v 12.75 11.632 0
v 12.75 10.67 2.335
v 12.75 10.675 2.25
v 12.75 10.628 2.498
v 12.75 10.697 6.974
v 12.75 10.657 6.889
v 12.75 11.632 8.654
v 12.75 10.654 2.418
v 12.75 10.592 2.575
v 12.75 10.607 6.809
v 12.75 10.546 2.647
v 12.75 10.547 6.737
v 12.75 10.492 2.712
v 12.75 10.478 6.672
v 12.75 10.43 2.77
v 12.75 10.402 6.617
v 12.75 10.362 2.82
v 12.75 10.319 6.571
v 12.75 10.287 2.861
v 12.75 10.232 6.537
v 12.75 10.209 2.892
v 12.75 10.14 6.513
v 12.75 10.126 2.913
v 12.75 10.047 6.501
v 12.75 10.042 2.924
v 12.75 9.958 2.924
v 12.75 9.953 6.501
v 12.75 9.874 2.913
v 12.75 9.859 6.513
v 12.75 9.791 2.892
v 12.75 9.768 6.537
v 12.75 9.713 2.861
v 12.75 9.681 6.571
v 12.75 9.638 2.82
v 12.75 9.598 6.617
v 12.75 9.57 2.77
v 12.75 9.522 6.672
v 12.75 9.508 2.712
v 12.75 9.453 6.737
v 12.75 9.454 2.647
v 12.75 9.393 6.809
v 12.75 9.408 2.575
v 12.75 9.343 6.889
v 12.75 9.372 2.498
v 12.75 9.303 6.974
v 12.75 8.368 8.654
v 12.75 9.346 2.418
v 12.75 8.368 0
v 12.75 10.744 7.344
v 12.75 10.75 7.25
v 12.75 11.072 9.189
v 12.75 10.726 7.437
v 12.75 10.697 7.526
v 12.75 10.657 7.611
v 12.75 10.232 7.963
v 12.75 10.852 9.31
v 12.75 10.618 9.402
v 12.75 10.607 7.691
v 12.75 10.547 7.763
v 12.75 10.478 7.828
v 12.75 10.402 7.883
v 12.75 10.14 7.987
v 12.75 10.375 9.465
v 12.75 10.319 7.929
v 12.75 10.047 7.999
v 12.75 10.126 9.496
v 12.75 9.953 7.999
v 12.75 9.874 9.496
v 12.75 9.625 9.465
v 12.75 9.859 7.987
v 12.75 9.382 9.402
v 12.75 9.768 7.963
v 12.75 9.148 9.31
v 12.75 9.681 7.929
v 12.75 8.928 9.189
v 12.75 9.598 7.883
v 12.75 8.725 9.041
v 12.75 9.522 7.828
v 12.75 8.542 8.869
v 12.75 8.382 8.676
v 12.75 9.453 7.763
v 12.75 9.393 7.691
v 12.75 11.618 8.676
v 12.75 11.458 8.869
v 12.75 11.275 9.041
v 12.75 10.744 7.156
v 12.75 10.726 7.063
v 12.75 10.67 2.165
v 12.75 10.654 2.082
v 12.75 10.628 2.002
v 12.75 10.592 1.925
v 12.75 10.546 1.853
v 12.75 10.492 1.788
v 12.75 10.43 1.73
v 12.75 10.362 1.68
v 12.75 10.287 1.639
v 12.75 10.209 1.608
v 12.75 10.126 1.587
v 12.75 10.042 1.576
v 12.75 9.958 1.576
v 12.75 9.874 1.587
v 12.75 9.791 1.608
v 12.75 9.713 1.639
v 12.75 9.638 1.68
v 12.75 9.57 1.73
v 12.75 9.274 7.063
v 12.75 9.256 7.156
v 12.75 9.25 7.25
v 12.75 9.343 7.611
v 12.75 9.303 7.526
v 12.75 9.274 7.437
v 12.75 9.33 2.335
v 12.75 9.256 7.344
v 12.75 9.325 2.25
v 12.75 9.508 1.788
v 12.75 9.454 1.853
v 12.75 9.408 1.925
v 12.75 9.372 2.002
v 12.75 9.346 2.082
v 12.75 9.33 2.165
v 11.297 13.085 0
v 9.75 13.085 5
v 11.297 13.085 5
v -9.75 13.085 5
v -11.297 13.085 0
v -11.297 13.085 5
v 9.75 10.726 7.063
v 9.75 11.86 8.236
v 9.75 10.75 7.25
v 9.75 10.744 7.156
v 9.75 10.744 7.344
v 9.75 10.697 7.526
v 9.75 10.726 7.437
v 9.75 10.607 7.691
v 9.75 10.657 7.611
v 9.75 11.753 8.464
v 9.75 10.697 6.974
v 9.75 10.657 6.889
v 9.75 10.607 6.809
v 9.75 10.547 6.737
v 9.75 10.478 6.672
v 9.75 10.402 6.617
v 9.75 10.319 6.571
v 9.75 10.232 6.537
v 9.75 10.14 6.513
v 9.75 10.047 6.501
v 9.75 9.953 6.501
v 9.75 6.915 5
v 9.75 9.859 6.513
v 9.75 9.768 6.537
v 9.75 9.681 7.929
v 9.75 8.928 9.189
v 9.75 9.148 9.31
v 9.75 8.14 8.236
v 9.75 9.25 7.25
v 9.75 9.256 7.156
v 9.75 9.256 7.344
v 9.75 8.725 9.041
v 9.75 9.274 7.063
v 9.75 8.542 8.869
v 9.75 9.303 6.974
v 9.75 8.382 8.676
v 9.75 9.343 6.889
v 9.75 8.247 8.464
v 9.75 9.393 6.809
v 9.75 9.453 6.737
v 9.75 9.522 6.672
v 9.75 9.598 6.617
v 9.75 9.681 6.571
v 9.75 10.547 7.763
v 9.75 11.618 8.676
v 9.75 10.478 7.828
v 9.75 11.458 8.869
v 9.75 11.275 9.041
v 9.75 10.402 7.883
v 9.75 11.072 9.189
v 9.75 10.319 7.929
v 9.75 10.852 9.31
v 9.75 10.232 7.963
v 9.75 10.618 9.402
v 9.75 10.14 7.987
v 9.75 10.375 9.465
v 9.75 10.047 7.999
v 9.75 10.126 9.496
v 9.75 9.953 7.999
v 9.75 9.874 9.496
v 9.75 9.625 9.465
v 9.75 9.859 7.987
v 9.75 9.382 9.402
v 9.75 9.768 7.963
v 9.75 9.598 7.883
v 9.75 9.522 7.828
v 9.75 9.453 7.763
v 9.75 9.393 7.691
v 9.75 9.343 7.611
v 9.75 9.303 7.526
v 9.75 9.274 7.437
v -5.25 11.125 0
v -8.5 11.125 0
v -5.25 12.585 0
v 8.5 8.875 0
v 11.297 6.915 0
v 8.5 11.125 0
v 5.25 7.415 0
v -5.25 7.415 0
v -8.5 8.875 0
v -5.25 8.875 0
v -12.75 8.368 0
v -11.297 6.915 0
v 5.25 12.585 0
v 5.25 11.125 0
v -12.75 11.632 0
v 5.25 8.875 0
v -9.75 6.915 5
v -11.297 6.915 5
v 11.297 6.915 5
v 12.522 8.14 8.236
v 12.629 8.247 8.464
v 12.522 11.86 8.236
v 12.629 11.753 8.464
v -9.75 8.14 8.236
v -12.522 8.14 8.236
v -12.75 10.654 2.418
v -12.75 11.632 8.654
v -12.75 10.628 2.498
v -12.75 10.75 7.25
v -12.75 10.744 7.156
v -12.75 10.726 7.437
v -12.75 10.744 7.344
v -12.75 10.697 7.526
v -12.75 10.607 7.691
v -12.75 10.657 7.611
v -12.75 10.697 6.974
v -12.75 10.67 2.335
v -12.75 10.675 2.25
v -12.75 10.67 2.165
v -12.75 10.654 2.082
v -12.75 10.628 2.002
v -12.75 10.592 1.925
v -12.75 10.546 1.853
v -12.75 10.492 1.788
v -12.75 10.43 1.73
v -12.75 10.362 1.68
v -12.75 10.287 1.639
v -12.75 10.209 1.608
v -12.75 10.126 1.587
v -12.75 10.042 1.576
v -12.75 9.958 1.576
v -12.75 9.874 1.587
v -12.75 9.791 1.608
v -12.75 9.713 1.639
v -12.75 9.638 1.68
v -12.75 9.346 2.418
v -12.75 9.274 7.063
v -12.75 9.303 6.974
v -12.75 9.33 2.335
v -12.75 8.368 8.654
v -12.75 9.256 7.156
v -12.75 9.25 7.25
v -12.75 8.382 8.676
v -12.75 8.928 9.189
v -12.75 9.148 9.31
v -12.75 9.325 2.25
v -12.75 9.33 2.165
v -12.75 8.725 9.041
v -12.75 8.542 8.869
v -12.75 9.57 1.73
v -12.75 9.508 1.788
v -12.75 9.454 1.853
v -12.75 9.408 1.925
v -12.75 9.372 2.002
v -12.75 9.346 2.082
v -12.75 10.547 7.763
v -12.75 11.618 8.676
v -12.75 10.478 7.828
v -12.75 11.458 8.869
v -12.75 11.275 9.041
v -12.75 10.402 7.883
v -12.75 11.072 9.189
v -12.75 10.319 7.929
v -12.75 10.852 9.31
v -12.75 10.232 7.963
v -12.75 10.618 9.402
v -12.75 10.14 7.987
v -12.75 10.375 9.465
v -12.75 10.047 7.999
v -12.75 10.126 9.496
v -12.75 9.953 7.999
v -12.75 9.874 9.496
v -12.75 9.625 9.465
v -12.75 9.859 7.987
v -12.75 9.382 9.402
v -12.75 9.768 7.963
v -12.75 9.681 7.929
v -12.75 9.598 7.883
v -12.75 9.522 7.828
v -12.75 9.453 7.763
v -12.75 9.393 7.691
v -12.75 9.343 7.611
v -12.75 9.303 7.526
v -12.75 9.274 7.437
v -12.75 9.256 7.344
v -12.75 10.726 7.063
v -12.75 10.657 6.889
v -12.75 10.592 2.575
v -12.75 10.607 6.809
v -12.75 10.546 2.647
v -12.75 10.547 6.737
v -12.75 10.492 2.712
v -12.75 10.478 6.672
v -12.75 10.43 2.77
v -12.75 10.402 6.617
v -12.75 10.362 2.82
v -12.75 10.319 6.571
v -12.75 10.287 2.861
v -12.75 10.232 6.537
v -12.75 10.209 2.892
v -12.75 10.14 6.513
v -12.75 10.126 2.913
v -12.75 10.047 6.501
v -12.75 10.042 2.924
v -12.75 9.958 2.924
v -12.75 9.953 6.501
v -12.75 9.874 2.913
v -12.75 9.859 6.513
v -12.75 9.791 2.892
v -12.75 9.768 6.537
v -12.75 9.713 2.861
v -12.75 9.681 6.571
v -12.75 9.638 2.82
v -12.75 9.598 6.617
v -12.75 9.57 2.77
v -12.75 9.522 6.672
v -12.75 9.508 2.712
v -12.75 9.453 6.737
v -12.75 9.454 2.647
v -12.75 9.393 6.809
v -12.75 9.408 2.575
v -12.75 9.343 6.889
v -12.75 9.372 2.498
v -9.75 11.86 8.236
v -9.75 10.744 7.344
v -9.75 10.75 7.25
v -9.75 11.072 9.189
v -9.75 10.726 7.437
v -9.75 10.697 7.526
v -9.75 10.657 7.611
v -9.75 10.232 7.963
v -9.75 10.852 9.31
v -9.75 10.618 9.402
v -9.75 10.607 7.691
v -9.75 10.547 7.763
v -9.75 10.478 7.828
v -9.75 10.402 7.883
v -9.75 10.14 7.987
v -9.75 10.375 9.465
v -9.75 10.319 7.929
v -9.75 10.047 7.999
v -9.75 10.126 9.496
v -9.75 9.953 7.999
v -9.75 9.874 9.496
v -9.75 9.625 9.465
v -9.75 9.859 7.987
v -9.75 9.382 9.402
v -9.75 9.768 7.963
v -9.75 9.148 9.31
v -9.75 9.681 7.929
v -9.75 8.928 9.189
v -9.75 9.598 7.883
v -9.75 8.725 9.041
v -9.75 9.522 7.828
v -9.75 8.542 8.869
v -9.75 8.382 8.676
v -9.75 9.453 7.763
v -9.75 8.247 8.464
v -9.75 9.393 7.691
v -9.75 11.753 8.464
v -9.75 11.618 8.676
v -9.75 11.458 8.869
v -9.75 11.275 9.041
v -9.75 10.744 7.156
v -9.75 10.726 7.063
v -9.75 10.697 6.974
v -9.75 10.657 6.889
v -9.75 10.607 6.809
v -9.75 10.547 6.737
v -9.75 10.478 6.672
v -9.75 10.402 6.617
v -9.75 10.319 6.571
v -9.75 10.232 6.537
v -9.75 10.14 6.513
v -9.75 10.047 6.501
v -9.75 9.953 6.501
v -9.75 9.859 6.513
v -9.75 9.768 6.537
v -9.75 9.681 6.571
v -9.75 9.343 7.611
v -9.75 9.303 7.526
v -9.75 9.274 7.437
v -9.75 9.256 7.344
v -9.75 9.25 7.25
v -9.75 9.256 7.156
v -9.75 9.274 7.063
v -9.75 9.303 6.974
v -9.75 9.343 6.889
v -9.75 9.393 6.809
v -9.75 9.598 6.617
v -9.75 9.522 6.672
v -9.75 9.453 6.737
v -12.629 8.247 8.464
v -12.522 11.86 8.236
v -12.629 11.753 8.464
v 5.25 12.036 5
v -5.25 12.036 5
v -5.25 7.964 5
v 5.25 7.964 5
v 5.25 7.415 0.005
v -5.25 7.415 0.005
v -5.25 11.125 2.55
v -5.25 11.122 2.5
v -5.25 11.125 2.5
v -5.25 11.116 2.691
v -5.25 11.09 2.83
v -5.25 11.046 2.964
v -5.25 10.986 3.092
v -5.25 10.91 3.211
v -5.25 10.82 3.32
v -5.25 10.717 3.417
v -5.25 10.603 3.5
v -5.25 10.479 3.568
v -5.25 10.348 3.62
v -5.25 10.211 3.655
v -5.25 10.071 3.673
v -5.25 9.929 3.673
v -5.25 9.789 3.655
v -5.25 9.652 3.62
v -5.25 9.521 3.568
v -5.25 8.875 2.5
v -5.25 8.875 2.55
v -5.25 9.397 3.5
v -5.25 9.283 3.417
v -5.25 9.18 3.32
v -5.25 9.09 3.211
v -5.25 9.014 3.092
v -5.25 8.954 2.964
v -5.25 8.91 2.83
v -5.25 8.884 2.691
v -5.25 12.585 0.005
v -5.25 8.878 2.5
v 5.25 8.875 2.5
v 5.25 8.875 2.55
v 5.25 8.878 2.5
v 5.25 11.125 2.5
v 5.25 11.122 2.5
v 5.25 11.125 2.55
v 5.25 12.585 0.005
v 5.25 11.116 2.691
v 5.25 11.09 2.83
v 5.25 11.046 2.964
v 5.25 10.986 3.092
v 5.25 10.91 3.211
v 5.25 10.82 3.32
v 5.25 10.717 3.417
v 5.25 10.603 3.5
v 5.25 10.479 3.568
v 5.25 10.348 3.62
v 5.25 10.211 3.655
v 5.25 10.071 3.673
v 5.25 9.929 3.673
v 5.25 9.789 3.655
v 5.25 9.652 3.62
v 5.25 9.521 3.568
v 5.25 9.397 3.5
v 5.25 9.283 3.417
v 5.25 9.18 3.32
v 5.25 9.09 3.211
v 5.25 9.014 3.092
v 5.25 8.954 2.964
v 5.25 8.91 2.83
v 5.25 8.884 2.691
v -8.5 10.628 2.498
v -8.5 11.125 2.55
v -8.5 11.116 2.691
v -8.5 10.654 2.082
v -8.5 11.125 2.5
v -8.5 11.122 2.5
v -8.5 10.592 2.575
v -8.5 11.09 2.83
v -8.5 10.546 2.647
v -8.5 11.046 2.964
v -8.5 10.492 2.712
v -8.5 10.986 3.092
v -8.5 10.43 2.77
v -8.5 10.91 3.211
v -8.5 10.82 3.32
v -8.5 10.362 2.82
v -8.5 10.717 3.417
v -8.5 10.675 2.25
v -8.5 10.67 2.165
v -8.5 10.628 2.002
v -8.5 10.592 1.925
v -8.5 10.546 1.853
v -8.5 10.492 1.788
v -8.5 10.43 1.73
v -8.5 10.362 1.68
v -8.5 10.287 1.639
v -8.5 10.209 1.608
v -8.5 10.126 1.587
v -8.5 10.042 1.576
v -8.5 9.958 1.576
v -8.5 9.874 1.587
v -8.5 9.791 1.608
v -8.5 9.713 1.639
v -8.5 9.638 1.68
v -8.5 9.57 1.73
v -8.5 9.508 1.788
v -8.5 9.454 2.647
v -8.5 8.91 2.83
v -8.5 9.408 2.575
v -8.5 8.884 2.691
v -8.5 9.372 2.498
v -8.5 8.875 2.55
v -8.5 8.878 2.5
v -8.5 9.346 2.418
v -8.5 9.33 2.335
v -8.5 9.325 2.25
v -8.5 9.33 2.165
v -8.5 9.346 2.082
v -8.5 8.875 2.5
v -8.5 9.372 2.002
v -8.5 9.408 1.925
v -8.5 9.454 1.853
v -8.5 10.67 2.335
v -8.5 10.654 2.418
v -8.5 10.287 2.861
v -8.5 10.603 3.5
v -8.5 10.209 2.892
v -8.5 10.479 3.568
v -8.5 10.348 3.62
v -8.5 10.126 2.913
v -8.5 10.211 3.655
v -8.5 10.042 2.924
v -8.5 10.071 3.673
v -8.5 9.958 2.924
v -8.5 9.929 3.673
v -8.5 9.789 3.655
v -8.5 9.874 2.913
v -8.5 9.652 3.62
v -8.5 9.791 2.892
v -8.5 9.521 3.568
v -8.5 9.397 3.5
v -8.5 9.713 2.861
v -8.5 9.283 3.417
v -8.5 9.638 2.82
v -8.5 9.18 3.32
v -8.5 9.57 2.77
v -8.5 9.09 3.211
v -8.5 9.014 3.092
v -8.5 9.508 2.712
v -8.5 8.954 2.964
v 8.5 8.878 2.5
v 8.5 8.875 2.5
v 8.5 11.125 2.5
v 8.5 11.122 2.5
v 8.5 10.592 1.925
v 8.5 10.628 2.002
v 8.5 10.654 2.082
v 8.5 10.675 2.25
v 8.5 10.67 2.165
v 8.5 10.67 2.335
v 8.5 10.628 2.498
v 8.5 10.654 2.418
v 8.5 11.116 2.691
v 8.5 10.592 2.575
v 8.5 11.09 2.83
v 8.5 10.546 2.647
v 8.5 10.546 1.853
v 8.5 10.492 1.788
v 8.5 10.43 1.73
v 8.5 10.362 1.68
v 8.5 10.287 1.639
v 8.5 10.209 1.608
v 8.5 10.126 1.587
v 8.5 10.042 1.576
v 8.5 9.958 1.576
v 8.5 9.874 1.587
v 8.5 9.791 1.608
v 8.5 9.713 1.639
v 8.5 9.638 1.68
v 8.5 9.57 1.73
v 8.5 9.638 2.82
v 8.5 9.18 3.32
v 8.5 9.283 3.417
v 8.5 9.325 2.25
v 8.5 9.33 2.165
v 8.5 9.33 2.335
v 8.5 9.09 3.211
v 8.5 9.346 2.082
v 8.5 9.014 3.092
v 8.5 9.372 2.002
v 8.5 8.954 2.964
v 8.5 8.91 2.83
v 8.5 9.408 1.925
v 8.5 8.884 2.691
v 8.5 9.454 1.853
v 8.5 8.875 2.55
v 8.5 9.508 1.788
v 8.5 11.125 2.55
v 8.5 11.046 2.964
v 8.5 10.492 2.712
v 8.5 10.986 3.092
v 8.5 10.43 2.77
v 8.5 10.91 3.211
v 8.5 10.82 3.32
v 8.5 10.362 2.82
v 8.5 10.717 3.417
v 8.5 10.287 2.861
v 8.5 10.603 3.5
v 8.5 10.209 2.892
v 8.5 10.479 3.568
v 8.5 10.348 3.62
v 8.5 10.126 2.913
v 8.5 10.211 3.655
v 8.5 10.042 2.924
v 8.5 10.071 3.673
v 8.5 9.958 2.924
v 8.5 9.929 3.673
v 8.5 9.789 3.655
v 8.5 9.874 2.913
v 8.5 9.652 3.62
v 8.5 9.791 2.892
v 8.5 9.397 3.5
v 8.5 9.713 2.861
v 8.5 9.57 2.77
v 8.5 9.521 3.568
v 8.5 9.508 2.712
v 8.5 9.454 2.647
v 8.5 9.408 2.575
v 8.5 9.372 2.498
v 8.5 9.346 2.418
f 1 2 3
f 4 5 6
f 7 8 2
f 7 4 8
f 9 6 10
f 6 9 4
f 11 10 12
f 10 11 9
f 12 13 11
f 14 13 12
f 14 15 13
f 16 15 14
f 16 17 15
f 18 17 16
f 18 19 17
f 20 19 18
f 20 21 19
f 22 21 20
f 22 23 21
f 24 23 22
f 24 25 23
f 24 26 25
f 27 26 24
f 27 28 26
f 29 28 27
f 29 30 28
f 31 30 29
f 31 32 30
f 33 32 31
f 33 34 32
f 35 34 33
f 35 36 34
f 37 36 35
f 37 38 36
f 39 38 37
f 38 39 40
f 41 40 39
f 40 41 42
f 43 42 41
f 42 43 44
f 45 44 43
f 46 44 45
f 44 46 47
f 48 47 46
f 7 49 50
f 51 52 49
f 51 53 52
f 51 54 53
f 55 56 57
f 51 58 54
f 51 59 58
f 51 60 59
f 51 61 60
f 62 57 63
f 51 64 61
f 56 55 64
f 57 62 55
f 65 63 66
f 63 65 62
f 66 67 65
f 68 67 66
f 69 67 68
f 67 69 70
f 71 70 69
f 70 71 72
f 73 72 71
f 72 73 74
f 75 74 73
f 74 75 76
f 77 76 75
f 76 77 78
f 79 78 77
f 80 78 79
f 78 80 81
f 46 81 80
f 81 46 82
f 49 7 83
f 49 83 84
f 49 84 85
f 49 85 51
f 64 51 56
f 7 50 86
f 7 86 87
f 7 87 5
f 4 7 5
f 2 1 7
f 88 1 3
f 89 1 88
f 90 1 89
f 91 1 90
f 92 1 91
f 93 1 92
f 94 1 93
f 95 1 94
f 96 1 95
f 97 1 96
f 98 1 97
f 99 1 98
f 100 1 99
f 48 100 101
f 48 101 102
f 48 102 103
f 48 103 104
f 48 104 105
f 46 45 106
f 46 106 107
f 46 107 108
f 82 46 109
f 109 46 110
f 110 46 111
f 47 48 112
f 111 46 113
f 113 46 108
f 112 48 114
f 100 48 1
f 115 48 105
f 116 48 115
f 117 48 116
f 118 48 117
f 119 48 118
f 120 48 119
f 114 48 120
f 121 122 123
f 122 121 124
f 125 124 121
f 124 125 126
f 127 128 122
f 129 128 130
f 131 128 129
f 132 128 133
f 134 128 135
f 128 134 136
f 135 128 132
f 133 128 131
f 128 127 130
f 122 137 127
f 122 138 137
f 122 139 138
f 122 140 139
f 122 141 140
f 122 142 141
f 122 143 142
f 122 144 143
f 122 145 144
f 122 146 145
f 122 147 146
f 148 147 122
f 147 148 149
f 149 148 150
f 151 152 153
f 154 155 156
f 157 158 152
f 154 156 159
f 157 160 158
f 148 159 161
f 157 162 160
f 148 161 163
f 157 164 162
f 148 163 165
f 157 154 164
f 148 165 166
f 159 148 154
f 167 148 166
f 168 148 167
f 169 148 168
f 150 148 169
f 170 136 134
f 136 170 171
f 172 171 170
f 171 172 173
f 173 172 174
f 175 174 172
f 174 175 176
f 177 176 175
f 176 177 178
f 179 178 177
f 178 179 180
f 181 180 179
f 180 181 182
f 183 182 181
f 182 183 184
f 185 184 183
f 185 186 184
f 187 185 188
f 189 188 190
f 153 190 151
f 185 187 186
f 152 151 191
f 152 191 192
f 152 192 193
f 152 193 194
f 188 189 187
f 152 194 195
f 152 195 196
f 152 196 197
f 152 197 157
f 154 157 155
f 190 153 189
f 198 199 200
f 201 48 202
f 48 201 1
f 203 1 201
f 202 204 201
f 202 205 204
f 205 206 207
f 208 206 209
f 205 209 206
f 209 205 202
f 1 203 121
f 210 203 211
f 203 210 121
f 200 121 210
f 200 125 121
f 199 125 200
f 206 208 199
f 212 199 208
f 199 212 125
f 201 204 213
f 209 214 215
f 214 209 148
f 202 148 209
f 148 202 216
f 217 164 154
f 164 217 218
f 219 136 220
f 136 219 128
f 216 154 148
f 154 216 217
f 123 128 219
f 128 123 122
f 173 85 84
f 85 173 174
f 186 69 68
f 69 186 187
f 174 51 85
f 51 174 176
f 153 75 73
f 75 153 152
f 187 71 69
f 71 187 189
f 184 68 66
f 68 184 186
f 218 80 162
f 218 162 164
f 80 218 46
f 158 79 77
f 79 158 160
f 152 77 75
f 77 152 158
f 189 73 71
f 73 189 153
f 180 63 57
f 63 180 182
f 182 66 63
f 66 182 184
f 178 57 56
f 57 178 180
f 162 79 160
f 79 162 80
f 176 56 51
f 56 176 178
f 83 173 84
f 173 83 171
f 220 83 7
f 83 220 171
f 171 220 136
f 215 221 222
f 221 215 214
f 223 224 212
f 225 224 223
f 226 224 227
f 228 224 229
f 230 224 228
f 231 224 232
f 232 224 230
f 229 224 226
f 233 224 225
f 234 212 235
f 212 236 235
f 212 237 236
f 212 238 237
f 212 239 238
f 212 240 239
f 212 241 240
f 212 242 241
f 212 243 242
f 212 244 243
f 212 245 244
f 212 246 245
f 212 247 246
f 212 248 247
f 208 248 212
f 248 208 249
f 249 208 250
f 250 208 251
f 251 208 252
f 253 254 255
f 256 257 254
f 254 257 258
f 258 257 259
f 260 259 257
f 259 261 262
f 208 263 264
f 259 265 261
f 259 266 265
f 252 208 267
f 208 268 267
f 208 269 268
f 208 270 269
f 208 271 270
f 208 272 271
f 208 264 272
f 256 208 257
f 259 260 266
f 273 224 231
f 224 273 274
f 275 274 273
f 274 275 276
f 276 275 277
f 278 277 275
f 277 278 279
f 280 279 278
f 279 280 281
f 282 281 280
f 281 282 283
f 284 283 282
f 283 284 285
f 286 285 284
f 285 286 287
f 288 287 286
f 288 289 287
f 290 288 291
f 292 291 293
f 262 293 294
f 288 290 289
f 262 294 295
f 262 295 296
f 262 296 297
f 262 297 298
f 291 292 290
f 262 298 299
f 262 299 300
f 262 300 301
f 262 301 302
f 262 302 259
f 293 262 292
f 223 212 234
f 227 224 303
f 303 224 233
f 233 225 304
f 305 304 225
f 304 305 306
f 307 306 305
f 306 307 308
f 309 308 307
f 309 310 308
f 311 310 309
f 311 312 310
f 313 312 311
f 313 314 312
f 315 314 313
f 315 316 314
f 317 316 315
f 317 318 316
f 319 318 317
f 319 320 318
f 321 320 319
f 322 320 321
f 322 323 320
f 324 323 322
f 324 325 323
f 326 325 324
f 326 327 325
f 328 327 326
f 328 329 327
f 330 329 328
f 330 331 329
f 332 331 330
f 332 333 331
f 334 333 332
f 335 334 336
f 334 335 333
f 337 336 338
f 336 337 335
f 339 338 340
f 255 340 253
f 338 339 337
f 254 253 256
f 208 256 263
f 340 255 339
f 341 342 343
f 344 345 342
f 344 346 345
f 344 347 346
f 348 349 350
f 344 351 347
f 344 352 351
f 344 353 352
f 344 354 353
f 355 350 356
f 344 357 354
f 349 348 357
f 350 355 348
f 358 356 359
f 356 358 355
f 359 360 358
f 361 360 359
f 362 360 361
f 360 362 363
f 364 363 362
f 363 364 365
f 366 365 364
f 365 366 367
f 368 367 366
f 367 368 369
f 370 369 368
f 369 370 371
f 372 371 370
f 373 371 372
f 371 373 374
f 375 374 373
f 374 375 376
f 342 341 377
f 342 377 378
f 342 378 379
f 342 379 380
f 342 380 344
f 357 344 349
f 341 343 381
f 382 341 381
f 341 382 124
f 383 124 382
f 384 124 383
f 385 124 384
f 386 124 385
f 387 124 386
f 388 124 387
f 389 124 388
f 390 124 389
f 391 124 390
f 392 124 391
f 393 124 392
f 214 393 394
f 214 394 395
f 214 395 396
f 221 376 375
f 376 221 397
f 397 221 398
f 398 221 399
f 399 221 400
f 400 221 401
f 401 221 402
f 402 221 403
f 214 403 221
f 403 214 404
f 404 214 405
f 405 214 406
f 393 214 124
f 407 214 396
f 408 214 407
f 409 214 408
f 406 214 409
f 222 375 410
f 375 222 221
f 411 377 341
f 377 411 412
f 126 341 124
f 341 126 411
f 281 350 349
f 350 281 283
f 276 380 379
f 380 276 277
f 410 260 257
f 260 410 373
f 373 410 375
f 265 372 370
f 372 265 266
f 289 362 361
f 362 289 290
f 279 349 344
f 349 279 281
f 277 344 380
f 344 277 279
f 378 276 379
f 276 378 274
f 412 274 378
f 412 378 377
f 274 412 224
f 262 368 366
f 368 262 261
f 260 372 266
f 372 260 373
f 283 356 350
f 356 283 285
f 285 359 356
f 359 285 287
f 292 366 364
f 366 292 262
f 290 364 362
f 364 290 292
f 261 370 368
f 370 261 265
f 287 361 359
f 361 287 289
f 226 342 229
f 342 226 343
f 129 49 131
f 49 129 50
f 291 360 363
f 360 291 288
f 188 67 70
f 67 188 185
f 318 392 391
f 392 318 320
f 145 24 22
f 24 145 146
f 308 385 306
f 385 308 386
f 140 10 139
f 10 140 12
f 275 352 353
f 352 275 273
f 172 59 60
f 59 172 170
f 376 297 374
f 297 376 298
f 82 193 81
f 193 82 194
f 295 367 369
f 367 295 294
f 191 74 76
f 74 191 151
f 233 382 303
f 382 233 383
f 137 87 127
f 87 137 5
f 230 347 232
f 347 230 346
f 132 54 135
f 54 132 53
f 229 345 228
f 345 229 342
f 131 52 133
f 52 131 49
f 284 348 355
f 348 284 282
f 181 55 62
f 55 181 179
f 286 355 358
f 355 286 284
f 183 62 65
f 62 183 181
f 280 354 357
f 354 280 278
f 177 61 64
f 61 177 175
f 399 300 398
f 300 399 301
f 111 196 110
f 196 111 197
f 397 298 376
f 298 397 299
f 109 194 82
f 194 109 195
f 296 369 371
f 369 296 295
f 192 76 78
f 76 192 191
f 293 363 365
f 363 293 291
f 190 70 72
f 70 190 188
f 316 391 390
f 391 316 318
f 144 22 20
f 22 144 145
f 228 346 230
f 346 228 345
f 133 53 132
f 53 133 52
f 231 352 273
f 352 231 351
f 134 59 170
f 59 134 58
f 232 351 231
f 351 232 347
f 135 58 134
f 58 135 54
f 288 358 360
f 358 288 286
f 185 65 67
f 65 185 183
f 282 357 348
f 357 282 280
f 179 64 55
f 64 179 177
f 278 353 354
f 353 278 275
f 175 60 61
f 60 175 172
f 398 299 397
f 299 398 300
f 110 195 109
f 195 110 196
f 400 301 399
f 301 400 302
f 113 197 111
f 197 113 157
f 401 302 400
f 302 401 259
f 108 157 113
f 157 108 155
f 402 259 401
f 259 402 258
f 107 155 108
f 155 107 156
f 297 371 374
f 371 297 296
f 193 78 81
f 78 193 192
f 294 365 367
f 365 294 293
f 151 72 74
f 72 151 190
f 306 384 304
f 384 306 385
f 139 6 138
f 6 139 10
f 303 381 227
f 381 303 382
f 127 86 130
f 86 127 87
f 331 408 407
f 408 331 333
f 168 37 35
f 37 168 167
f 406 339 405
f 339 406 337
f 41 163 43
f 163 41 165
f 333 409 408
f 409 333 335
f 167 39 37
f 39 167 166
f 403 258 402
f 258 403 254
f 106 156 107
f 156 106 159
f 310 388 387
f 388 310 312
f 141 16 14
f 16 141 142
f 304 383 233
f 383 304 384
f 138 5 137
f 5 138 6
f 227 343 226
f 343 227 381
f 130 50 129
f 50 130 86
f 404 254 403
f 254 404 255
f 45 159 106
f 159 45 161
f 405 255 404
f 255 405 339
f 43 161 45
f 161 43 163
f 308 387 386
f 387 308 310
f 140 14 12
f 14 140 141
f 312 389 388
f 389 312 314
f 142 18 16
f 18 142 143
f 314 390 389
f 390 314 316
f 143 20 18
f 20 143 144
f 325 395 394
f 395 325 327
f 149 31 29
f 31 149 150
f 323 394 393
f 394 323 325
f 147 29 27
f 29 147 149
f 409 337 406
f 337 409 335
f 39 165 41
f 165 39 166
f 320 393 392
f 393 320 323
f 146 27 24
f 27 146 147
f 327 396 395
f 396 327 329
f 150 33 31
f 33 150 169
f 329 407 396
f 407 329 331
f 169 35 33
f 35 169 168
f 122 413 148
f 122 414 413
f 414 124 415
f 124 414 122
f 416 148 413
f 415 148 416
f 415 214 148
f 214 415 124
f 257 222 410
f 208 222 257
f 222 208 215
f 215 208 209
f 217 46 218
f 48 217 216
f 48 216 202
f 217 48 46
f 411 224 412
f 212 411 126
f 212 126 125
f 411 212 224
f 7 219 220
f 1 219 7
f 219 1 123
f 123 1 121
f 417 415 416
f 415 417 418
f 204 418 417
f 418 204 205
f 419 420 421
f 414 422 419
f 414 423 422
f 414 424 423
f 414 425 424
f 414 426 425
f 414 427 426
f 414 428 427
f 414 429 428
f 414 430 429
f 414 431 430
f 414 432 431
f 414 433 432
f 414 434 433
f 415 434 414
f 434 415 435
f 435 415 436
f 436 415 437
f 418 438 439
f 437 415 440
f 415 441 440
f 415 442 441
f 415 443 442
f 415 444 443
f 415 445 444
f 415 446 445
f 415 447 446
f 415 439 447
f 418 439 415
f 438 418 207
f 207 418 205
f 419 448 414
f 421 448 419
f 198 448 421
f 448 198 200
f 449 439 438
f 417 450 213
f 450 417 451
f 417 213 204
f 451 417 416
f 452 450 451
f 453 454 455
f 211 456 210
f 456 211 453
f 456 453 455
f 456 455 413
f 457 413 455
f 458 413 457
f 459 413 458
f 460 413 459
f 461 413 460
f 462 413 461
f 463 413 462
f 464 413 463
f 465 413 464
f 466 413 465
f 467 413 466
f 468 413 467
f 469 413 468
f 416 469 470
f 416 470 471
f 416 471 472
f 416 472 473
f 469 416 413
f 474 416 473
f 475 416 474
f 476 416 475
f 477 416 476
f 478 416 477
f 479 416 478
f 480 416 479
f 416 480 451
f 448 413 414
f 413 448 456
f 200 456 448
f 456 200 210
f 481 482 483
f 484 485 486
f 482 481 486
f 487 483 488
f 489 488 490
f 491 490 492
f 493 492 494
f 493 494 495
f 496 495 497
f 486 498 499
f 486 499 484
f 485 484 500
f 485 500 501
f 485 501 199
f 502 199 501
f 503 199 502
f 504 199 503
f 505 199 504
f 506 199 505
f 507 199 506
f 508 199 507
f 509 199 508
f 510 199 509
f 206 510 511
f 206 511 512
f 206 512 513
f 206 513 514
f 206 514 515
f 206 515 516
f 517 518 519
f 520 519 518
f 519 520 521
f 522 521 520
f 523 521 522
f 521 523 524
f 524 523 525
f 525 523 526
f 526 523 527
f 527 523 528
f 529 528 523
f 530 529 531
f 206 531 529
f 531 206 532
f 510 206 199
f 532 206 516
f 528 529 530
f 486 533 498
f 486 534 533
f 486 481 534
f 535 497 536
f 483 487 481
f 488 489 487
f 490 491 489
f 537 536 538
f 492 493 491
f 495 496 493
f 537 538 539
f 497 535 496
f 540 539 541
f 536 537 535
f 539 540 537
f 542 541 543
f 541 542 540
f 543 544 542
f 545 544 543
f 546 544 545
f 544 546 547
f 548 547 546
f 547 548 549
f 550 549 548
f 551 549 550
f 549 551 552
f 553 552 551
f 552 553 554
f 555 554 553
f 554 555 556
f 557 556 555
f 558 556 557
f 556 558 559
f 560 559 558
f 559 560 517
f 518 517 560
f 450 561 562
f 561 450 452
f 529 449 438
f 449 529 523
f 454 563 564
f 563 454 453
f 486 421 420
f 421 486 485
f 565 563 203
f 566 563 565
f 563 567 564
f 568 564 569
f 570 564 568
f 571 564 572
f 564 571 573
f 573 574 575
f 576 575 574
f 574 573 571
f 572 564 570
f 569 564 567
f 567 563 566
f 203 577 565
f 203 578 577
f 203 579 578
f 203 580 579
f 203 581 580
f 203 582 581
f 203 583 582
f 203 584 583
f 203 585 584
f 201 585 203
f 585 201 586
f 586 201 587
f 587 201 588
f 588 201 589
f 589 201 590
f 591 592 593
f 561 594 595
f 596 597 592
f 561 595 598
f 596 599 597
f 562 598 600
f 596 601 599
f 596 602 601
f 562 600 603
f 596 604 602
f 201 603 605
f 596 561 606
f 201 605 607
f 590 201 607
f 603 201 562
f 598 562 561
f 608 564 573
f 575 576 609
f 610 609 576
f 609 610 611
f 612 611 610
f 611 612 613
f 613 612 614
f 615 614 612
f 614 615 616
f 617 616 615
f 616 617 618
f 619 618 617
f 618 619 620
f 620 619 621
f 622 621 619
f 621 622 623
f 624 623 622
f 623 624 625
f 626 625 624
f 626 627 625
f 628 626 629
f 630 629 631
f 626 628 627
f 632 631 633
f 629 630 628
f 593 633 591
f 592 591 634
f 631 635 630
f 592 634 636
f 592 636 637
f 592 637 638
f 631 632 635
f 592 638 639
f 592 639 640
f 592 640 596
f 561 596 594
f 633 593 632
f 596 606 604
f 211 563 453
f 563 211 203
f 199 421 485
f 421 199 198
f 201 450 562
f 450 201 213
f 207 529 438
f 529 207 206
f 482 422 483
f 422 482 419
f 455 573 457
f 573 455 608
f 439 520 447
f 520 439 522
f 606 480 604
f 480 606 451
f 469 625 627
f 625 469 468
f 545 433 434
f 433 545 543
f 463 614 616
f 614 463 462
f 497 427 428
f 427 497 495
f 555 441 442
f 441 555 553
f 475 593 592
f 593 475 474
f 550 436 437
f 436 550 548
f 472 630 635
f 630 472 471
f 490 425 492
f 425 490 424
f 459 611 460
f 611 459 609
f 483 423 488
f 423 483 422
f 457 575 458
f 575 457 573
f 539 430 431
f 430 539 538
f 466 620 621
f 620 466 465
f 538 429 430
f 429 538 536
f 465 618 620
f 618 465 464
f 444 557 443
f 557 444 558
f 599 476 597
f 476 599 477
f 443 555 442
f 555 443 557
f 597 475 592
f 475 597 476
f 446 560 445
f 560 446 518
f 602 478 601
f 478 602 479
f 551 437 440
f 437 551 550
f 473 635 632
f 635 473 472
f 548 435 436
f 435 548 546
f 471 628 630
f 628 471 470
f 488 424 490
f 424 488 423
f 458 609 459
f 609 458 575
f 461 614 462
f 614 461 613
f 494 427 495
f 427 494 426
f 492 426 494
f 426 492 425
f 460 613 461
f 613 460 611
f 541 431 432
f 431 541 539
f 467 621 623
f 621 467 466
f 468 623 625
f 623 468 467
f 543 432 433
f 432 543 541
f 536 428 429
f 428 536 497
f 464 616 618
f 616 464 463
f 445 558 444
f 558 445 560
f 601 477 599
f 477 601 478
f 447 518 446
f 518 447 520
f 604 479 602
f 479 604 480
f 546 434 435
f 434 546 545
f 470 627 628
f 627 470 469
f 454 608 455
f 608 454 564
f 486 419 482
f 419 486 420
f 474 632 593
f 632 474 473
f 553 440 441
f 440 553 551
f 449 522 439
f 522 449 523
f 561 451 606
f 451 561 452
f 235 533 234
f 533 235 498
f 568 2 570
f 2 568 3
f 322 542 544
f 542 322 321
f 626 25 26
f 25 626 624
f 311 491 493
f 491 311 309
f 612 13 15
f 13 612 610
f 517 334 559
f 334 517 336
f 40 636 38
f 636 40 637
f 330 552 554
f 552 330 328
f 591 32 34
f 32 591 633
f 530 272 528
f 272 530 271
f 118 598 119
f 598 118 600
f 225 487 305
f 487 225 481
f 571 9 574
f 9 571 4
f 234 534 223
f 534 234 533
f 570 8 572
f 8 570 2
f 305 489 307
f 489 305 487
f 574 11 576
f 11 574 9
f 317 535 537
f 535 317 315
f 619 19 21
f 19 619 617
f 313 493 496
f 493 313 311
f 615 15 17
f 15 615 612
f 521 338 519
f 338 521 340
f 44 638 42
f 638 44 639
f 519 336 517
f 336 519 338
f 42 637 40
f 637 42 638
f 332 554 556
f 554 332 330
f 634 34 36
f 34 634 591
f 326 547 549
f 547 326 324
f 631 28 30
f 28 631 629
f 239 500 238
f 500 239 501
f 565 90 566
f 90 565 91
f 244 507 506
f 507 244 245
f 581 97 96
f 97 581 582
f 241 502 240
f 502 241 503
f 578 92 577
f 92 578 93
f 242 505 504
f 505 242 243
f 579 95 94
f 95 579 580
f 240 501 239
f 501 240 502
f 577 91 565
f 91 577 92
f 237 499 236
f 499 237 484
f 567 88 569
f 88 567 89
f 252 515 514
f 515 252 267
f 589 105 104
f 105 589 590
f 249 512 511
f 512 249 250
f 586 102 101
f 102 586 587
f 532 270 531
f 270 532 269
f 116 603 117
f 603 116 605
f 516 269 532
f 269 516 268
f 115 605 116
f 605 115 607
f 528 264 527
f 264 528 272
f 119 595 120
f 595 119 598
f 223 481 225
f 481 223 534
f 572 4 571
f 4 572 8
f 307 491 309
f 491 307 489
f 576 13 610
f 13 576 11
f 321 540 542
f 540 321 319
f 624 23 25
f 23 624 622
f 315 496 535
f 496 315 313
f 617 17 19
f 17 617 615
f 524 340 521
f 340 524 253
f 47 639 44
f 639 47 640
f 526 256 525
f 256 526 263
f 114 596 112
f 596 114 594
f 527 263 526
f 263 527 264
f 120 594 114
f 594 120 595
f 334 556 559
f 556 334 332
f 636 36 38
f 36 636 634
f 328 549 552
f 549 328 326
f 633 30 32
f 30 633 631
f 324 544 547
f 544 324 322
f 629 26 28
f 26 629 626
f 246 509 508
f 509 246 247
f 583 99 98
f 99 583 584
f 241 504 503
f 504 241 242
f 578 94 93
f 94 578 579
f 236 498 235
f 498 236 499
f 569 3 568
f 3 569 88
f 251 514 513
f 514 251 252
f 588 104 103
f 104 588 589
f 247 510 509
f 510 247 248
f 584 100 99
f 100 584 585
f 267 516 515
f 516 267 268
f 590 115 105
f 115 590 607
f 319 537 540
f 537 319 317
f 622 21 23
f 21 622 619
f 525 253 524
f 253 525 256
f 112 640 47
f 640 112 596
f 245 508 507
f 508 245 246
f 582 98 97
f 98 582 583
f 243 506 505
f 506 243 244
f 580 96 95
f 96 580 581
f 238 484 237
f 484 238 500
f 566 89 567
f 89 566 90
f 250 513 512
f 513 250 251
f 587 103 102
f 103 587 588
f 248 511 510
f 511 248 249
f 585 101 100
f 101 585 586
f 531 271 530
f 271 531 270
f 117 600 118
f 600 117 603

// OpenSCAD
$fn=50;

module top(){ 
    difference(){
        hull(){
            cube([10,4.4,0.01],center=true);
            //translate([0,0.5,2.17]){
              //  cube([10,4.4,0.01],center=true);        
            //}
            translate([0,1.25,5]){
                cube([10,2.6,0.01],center=true);
            }
        }
        translate([-10,0.85,5-2.13]){
            rotate([0,90,0]){
                cylinder(d=1.75,h=20);
            }
        }
        
        hull(){
            translate([0,2.5,-0.01]){
                cube([10+1,2,0.01],center=true);
            }
            translate([0,3.5,2]){
                cube([10+1,2,0.01],center=true);
            }
        }
        
    }
}

module bot(){ 
    difference(){
        hull(){
            cube([10*1.05, 4.7*1.1,0.01],center=true); 
            translate([0,0,6])
            cube([10*1.05,3.5*1.1,0.01],center=true);
        }
        translate([-11,0,5-2.13]){
            rotate([0,90,0]){
                //cylinder(d=1.75,h=22);
            }
        }
    }
}

translate([0,10,0]){
    difference(){
    union(){
        translate([0,0,5/2]){
            cube([24.25,4.7*1.1+1,5],center=true);
        }
        difference(){
            for(i=[-1:1:1]){
                mirror([i,0,0]){
                    hull(){
                        translate([-22.5/2,0,5/2]){
                            cube([3,4.7*1.1+1,5],center=true);
                        }
                        translate([-22.5/2-3/2,0,7.5]){
                            rotate([90,0,90]){
                                cylinder(d=4,h=3);
                            }
                        }
                    }
                }
            }
            translate([-35/2,0,7.25])
            rotate([90,0,90]){
                cylinder(d=1.5,h=35);
            }
        }
        
    }
    bot();
    //top();
    cube([17,2.25,5],center=true);
    translate([-17/2,0,2.55]){
        rotate([90,0,90]){
        cylinder(d=2.25,h=17);
        }
    }
    
    translate([-30/2,0,2.25]){
        rotate([90,0,90]){
        cylinder(d=1.35,h=30);
        }
    }
    
    for(j=[-1:2:1]){
        for(i=[-1:2:1]){
            translate([(24.25/2+2)*i,j*(4.7*1.1+1)/2,10/2-0.1]){
                rotate([0,0,45]){
                    cube([4,4,10],center=true);
                }
            }
        }
    }
    
}
    
}


//bot();



//top();
